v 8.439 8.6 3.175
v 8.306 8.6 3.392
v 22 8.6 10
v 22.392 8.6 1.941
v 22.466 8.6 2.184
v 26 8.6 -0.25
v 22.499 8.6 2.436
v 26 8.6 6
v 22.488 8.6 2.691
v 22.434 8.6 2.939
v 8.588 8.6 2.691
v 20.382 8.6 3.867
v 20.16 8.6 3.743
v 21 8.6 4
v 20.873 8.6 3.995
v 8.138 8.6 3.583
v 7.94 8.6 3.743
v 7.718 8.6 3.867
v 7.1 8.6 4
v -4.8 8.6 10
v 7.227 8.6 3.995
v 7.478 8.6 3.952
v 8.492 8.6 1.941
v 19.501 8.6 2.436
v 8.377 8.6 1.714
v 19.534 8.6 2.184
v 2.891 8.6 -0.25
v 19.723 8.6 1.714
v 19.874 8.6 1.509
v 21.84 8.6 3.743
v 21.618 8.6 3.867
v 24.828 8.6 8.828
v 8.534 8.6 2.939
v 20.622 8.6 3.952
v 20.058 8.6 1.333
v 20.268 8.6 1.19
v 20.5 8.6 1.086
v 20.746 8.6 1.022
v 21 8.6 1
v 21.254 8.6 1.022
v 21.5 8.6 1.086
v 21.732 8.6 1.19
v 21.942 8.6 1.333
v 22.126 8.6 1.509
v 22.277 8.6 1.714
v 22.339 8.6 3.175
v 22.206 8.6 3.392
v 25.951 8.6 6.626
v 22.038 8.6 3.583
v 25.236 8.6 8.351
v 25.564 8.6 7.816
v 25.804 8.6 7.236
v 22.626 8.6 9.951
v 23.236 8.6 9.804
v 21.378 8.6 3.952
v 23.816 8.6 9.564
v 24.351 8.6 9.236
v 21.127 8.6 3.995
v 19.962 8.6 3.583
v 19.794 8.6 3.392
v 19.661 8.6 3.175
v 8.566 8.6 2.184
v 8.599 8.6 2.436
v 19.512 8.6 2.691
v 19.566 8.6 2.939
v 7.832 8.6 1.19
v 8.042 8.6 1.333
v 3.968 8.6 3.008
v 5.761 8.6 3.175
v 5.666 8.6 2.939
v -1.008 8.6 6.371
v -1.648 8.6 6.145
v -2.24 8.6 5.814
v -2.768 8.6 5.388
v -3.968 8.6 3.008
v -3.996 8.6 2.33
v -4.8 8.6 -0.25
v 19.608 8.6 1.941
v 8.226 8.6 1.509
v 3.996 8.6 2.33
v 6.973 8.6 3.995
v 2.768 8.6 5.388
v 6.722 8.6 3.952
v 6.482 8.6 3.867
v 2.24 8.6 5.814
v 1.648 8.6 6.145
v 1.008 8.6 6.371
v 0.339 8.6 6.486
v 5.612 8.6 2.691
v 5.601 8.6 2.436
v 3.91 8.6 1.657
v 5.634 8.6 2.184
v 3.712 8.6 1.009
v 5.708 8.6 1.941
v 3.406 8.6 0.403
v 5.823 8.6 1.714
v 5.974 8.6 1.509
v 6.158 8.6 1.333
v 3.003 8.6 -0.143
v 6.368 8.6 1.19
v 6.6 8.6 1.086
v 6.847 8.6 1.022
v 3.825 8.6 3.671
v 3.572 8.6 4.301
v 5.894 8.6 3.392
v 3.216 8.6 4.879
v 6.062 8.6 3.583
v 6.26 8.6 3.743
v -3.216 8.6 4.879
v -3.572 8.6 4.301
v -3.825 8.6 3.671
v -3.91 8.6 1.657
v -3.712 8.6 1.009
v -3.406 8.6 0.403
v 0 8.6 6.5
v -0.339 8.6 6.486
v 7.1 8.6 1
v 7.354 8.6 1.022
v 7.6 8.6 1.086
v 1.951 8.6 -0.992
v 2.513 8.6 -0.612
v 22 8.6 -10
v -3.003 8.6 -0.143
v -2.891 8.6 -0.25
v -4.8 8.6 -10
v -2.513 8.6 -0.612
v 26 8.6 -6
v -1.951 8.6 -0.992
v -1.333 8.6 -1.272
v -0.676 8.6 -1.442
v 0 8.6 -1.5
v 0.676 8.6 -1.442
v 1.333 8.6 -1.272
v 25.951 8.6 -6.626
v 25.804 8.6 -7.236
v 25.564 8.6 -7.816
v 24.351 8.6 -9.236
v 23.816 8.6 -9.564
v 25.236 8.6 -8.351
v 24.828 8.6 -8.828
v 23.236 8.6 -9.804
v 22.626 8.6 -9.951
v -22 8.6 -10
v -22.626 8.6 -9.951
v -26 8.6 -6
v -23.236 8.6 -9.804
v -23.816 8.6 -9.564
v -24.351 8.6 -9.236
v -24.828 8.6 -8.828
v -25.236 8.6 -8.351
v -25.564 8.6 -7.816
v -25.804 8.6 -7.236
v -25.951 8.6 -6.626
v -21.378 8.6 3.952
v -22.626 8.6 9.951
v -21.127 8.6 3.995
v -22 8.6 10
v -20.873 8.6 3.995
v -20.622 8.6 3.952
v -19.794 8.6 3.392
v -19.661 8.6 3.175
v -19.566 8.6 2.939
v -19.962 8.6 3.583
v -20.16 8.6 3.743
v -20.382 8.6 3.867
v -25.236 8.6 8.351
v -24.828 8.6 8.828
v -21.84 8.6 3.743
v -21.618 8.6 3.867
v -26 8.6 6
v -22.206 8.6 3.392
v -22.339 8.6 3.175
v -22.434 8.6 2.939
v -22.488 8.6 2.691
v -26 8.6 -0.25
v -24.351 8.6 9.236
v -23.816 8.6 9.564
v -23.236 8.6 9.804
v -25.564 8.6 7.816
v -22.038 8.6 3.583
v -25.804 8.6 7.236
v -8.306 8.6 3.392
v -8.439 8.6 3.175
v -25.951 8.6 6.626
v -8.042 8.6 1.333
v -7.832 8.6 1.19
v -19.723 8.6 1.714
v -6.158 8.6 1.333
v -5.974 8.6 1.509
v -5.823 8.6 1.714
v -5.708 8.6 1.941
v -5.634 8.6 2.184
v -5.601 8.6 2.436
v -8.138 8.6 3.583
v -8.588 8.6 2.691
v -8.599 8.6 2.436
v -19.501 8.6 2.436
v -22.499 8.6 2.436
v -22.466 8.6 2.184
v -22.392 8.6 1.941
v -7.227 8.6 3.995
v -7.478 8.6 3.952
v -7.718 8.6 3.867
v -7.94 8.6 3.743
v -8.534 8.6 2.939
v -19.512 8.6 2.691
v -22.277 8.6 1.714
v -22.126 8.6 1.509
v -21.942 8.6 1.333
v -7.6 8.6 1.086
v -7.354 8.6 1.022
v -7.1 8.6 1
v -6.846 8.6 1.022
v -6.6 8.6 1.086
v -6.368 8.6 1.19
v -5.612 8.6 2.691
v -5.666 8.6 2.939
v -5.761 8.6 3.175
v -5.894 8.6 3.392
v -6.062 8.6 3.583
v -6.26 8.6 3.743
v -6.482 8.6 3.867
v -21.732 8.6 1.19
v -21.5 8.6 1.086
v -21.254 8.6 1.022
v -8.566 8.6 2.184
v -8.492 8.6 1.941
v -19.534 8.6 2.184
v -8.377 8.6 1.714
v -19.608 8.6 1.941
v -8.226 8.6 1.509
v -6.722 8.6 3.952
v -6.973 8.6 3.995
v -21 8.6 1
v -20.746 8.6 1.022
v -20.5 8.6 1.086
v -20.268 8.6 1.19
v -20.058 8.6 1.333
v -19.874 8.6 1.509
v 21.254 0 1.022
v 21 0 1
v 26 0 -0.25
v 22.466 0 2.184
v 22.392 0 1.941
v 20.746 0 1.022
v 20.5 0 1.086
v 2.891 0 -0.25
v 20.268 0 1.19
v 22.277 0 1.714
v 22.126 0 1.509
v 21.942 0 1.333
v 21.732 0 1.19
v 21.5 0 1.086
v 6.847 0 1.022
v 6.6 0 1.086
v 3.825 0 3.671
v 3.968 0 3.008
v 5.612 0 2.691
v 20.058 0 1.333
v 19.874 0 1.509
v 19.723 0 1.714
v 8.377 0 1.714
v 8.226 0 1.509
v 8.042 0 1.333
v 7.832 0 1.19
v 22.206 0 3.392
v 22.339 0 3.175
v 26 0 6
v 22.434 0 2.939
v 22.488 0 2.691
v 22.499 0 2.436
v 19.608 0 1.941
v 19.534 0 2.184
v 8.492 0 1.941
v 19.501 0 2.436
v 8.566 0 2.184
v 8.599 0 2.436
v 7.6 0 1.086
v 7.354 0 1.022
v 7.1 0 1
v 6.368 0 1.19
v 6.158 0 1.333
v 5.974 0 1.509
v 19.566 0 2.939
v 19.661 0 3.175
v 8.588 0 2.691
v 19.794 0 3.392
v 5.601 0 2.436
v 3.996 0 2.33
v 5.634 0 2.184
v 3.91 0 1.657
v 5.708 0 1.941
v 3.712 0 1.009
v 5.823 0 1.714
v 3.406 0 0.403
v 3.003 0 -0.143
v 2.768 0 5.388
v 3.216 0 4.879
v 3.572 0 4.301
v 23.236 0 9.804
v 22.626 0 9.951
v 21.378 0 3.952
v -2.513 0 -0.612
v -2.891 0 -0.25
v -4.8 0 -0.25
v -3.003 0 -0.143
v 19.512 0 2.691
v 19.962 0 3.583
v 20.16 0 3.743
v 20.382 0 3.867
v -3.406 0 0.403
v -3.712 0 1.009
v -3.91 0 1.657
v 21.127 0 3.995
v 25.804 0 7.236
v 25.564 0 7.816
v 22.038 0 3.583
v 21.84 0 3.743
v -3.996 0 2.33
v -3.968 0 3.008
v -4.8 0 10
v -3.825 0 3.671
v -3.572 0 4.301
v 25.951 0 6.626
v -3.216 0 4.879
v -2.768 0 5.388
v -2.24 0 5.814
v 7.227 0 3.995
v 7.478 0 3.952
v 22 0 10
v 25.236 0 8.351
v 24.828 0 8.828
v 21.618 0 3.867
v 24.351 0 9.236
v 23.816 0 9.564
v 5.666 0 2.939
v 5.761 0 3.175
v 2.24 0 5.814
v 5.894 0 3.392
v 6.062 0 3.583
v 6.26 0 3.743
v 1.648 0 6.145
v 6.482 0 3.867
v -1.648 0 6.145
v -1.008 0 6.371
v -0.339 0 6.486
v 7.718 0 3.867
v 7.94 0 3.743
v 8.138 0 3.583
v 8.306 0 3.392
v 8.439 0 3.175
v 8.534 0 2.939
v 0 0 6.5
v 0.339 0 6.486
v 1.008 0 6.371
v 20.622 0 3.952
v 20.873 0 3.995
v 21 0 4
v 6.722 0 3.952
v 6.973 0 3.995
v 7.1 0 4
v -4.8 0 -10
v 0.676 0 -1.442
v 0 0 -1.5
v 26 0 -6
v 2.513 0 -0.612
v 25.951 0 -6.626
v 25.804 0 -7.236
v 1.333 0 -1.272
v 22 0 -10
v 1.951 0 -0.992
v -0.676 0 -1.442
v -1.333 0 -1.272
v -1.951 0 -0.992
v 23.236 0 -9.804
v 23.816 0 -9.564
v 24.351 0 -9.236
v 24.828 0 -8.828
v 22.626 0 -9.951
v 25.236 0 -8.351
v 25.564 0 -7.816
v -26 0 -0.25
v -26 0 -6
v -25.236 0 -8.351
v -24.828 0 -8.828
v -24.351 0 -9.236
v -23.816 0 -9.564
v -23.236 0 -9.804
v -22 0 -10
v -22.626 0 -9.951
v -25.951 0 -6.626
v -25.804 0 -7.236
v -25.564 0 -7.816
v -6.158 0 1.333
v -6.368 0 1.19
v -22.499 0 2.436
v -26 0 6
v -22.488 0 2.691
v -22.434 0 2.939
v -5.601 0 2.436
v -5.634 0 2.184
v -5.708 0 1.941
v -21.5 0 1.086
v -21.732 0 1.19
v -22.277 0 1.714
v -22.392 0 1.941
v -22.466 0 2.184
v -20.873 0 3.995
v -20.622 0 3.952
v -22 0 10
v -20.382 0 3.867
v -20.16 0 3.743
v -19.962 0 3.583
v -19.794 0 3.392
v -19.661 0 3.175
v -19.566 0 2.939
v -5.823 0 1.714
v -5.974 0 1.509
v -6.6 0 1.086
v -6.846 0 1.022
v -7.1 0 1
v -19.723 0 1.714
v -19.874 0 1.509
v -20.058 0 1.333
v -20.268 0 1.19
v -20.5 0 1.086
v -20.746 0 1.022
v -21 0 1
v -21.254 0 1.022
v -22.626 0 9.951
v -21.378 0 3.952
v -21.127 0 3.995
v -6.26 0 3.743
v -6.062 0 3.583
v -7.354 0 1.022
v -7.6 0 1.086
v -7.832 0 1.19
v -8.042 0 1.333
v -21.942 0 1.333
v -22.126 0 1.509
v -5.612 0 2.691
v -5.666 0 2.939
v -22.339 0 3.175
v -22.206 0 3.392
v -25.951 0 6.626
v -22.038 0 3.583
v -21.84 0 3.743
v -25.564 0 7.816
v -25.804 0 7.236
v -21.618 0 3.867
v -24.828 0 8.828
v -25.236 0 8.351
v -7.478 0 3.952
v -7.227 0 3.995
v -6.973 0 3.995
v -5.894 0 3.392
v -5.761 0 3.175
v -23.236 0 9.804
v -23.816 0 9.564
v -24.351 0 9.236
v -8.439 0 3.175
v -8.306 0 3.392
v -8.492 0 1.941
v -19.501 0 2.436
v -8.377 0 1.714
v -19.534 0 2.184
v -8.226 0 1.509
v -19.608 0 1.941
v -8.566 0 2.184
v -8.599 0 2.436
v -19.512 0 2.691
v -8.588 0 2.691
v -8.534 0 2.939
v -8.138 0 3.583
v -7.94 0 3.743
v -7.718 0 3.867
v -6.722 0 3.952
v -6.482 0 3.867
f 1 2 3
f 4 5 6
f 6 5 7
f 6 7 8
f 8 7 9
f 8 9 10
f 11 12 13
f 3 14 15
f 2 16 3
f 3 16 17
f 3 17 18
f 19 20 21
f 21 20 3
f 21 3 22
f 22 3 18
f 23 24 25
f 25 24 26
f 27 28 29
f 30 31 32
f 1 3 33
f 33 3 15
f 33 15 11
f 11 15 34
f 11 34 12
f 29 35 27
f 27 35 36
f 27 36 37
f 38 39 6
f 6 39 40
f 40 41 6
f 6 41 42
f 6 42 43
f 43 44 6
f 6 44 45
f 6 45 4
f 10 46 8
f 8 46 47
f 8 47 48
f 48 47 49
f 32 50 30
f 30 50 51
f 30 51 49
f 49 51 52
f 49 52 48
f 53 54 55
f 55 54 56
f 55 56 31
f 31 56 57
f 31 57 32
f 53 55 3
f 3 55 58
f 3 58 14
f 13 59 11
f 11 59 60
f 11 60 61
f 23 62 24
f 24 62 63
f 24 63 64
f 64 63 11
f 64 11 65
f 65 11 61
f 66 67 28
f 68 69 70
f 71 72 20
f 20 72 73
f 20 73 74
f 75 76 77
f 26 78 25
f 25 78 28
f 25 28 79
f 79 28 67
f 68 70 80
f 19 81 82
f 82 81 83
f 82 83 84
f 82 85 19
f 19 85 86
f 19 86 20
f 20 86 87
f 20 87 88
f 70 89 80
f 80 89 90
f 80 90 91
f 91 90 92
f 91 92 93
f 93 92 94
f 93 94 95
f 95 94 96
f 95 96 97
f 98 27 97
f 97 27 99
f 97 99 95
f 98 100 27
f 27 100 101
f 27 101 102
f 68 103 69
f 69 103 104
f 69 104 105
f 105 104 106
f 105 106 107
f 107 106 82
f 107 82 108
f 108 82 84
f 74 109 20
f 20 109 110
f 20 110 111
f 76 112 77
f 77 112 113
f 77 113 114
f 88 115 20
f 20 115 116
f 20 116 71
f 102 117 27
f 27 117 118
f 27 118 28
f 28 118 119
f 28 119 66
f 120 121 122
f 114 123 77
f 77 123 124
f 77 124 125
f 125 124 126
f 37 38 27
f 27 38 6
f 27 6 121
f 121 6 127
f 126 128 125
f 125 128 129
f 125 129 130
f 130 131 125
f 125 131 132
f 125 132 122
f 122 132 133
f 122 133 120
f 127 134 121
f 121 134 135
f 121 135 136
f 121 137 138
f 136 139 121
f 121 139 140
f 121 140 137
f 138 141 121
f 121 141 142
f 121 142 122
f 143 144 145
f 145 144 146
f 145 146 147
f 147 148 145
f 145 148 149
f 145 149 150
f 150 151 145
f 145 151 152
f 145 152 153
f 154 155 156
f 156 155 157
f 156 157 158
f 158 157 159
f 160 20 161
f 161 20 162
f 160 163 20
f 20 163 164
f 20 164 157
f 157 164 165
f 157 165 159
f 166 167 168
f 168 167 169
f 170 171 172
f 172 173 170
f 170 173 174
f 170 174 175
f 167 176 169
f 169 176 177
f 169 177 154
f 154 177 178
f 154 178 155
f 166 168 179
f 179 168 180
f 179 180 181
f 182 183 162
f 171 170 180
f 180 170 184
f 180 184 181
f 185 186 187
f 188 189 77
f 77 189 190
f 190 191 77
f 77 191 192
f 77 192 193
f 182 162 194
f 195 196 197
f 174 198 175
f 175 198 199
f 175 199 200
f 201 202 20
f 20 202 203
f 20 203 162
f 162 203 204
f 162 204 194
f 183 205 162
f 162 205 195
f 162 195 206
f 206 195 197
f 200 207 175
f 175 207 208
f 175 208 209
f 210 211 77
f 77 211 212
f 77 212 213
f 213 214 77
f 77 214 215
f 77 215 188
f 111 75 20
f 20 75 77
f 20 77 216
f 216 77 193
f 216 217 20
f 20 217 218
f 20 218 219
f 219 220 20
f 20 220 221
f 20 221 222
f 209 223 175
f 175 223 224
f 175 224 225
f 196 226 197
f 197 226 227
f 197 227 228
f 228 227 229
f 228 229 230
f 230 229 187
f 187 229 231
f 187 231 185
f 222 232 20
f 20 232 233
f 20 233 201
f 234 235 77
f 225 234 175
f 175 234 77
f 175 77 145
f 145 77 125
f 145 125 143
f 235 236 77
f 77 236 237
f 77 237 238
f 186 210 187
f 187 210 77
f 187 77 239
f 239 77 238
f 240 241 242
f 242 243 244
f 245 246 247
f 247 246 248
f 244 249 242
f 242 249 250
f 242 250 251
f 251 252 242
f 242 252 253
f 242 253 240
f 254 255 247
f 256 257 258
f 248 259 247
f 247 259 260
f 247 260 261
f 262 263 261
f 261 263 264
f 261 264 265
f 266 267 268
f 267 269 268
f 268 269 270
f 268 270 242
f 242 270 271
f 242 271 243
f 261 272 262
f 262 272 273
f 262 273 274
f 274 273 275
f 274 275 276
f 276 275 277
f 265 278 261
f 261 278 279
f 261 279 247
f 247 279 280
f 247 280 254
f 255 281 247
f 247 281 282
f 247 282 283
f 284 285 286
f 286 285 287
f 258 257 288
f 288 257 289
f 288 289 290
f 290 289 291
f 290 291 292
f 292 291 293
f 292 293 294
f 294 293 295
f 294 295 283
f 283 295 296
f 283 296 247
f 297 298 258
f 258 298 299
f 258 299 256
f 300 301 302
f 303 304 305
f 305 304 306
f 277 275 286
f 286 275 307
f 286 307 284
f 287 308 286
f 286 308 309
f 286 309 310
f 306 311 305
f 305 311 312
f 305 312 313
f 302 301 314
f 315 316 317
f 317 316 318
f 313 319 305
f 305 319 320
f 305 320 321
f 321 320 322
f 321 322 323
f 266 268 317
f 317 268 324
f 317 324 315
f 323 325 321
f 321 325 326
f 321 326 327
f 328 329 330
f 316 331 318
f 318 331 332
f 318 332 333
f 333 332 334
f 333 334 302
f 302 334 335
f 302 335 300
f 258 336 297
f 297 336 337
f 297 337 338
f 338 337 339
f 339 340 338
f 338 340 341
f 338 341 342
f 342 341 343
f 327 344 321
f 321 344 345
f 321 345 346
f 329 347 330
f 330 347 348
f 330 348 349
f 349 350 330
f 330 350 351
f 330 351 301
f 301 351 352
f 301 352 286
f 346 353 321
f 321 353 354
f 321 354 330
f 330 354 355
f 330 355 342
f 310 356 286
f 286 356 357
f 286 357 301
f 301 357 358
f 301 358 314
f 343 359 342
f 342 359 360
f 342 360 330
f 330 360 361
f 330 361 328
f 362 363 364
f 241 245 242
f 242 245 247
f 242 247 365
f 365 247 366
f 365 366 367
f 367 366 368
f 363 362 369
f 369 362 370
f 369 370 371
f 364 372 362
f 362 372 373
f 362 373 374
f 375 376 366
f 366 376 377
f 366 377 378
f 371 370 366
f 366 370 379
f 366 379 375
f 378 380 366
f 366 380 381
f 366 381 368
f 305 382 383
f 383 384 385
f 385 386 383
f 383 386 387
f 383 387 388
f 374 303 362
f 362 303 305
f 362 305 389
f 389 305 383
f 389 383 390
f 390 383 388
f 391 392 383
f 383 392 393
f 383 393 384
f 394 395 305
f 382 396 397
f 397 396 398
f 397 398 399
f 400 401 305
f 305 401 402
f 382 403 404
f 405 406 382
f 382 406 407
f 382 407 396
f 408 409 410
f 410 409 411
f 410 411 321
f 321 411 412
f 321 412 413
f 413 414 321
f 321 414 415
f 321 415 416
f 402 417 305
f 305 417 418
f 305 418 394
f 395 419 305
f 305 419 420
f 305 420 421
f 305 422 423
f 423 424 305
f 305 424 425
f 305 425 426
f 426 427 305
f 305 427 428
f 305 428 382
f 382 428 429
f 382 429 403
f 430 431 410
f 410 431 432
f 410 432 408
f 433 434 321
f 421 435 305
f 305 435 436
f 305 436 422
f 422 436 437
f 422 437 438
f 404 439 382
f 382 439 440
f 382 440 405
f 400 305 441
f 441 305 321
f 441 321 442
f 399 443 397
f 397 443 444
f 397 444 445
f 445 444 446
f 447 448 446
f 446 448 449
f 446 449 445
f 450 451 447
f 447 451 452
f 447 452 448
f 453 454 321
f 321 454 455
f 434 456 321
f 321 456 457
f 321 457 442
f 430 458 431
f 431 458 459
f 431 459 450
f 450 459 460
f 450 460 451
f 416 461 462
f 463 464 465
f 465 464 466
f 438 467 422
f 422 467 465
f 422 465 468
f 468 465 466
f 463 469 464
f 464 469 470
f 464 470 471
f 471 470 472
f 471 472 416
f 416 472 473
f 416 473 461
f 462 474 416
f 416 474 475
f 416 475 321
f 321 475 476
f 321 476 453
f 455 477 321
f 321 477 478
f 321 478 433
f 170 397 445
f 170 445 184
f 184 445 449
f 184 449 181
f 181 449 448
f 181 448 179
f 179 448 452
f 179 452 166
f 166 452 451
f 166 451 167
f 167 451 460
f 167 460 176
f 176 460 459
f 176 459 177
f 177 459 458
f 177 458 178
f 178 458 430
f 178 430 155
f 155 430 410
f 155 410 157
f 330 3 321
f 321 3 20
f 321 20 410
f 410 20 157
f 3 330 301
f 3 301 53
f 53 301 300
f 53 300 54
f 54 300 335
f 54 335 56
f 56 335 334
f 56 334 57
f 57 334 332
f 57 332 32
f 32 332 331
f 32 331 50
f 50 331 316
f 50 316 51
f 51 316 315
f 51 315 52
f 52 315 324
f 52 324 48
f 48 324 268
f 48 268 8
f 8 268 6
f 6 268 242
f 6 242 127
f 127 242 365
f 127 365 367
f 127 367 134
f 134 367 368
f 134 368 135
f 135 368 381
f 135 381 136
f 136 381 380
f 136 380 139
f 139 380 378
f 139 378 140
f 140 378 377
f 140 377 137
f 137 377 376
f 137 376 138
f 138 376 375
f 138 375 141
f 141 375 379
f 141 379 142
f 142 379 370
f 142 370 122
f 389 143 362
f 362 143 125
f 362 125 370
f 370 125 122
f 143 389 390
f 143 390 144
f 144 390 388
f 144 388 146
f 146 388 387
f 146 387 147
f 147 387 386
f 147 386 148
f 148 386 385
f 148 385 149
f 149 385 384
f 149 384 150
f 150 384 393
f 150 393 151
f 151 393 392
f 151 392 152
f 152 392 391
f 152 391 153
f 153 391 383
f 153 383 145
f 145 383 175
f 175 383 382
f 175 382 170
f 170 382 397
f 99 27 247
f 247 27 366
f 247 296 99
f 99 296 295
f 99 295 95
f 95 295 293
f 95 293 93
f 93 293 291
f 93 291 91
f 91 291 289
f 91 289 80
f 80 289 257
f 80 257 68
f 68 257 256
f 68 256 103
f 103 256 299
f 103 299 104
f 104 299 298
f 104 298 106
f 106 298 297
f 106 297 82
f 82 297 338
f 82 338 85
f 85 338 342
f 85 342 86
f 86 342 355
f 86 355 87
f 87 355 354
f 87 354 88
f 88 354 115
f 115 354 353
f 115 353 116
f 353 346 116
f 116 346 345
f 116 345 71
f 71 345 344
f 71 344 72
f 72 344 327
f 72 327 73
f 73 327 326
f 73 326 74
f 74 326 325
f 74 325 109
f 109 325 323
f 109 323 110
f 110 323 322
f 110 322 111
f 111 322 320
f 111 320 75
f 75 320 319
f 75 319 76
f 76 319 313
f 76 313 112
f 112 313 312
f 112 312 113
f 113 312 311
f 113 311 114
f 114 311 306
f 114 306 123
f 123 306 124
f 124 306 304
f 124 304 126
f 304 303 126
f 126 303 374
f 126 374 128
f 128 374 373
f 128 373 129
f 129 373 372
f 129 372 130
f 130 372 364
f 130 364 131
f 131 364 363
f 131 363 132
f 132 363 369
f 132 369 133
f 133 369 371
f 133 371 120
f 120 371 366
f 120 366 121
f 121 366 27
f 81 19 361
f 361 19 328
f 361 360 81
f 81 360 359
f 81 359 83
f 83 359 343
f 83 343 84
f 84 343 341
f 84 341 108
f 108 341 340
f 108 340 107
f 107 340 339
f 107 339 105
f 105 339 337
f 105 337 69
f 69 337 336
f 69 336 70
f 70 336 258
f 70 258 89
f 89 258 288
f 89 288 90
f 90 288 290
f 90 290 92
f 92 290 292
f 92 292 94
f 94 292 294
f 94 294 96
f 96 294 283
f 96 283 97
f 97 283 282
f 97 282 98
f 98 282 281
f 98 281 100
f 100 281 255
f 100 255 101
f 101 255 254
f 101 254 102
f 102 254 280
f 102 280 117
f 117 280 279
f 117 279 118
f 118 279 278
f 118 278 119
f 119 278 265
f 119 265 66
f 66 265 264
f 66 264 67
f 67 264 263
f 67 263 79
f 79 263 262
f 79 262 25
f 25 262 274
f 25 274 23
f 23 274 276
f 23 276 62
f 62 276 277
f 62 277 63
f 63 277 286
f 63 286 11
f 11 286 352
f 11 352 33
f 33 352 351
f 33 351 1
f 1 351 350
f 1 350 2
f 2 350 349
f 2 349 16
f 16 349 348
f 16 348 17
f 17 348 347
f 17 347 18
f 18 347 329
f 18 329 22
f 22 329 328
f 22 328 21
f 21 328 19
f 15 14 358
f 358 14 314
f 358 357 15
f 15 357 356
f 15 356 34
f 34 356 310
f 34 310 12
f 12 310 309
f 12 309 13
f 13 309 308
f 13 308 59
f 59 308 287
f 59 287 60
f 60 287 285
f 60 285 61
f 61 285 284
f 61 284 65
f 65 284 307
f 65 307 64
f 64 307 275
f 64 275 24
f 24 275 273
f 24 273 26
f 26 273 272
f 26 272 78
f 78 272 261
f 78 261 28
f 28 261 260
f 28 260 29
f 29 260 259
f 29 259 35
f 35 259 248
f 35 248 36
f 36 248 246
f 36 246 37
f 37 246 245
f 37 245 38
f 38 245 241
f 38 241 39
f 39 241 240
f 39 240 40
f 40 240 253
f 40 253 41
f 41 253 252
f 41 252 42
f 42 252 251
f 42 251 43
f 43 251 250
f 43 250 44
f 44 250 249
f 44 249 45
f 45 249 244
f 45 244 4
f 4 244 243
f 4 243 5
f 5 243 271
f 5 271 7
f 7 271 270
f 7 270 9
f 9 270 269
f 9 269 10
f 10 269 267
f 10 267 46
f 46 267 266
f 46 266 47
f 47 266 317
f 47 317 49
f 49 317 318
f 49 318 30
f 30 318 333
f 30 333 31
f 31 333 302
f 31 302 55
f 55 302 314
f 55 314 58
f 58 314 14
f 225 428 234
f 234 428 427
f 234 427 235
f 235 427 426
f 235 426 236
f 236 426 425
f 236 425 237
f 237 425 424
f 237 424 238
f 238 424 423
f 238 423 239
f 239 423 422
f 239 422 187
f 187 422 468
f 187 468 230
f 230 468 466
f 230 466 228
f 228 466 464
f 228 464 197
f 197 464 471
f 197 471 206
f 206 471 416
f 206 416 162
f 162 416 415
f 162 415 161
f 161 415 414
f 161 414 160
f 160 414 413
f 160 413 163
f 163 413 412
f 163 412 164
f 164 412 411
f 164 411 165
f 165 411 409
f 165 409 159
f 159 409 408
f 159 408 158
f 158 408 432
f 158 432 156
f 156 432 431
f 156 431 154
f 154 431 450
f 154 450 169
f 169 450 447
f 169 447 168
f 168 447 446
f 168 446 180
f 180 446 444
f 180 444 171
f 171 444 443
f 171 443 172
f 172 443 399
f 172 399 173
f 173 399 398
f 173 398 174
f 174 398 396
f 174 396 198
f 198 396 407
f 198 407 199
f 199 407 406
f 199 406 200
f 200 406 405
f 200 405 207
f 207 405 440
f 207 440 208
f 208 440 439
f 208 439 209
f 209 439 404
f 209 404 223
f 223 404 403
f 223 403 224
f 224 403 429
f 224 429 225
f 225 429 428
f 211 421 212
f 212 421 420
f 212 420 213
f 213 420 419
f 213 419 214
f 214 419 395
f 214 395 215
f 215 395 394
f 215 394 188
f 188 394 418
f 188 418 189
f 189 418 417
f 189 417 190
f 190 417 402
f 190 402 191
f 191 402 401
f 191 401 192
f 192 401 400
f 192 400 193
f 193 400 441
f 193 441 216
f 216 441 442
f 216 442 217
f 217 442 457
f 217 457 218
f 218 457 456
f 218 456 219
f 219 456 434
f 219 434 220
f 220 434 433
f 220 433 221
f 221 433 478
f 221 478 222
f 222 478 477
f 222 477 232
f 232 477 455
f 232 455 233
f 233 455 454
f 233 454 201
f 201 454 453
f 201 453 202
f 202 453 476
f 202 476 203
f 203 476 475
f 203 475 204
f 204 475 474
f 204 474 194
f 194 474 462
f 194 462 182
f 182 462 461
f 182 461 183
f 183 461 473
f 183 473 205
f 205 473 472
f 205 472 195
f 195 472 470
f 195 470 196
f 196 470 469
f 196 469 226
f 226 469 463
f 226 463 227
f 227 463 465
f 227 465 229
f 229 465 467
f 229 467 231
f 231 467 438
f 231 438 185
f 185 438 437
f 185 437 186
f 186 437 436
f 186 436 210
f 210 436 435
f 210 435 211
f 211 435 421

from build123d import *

# Parameters (mm, degrees)
SKETCH1_R           = 4
SKETCH1_R_2         = 1.5
BOSS_EXTRUDE1_DEPTH = 8.6


with BuildPart() as part:
    # Sketch1 → Boss-Extrude1 (new body)
    with BuildSketch(Plane(origin=(0, 0, 0), x_dir=(1, 0, 0), z_dir=(0, 1, 0))):
        with BuildLine():
            Line((-22, 10), (22, 10))
            ThreePointArc((22, 10), (24.828427125, 8.828427125), (26, 6))
            Line((26, 6), (26, -6))
            ThreePointArc((26, -6), (24.828427125, -8.828427125), (22, -10))
            Line((22, -10), (-22, -10))
            ThreePointArc((-22, -10), (-24.828427125, -8.828427125), (-26, -6))
            Line((-26, -6), (-26, 6))
            ThreePointArc((-26, 6), (-24.828427125, 8.828427125), (-22, 10))
        make_face()
        with Locations((0, -2.5)):
            Circle(SKETCH1_R, mode=Mode.SUBTRACT)
        with Locations((7.1, -2.5)):
            Circle(SKETCH1_R_2, mode=Mode.SUBTRACT)
        with Locations((21, -2.5)):
            Circle(SKETCH1_R_2, mode=Mode.SUBTRACT)
        with Locations((-21, -2.5)):
            Circle(SKETCH1_R_2, mode=Mode.SUBTRACT)
        with Locations((-7.1, -2.5)):
            Circle(SKETCH1_R_2, mode=Mode.SUBTRACT)
    extrude(amount=BOSS_EXTRUDE1_DEPTH)


solid = part.part
